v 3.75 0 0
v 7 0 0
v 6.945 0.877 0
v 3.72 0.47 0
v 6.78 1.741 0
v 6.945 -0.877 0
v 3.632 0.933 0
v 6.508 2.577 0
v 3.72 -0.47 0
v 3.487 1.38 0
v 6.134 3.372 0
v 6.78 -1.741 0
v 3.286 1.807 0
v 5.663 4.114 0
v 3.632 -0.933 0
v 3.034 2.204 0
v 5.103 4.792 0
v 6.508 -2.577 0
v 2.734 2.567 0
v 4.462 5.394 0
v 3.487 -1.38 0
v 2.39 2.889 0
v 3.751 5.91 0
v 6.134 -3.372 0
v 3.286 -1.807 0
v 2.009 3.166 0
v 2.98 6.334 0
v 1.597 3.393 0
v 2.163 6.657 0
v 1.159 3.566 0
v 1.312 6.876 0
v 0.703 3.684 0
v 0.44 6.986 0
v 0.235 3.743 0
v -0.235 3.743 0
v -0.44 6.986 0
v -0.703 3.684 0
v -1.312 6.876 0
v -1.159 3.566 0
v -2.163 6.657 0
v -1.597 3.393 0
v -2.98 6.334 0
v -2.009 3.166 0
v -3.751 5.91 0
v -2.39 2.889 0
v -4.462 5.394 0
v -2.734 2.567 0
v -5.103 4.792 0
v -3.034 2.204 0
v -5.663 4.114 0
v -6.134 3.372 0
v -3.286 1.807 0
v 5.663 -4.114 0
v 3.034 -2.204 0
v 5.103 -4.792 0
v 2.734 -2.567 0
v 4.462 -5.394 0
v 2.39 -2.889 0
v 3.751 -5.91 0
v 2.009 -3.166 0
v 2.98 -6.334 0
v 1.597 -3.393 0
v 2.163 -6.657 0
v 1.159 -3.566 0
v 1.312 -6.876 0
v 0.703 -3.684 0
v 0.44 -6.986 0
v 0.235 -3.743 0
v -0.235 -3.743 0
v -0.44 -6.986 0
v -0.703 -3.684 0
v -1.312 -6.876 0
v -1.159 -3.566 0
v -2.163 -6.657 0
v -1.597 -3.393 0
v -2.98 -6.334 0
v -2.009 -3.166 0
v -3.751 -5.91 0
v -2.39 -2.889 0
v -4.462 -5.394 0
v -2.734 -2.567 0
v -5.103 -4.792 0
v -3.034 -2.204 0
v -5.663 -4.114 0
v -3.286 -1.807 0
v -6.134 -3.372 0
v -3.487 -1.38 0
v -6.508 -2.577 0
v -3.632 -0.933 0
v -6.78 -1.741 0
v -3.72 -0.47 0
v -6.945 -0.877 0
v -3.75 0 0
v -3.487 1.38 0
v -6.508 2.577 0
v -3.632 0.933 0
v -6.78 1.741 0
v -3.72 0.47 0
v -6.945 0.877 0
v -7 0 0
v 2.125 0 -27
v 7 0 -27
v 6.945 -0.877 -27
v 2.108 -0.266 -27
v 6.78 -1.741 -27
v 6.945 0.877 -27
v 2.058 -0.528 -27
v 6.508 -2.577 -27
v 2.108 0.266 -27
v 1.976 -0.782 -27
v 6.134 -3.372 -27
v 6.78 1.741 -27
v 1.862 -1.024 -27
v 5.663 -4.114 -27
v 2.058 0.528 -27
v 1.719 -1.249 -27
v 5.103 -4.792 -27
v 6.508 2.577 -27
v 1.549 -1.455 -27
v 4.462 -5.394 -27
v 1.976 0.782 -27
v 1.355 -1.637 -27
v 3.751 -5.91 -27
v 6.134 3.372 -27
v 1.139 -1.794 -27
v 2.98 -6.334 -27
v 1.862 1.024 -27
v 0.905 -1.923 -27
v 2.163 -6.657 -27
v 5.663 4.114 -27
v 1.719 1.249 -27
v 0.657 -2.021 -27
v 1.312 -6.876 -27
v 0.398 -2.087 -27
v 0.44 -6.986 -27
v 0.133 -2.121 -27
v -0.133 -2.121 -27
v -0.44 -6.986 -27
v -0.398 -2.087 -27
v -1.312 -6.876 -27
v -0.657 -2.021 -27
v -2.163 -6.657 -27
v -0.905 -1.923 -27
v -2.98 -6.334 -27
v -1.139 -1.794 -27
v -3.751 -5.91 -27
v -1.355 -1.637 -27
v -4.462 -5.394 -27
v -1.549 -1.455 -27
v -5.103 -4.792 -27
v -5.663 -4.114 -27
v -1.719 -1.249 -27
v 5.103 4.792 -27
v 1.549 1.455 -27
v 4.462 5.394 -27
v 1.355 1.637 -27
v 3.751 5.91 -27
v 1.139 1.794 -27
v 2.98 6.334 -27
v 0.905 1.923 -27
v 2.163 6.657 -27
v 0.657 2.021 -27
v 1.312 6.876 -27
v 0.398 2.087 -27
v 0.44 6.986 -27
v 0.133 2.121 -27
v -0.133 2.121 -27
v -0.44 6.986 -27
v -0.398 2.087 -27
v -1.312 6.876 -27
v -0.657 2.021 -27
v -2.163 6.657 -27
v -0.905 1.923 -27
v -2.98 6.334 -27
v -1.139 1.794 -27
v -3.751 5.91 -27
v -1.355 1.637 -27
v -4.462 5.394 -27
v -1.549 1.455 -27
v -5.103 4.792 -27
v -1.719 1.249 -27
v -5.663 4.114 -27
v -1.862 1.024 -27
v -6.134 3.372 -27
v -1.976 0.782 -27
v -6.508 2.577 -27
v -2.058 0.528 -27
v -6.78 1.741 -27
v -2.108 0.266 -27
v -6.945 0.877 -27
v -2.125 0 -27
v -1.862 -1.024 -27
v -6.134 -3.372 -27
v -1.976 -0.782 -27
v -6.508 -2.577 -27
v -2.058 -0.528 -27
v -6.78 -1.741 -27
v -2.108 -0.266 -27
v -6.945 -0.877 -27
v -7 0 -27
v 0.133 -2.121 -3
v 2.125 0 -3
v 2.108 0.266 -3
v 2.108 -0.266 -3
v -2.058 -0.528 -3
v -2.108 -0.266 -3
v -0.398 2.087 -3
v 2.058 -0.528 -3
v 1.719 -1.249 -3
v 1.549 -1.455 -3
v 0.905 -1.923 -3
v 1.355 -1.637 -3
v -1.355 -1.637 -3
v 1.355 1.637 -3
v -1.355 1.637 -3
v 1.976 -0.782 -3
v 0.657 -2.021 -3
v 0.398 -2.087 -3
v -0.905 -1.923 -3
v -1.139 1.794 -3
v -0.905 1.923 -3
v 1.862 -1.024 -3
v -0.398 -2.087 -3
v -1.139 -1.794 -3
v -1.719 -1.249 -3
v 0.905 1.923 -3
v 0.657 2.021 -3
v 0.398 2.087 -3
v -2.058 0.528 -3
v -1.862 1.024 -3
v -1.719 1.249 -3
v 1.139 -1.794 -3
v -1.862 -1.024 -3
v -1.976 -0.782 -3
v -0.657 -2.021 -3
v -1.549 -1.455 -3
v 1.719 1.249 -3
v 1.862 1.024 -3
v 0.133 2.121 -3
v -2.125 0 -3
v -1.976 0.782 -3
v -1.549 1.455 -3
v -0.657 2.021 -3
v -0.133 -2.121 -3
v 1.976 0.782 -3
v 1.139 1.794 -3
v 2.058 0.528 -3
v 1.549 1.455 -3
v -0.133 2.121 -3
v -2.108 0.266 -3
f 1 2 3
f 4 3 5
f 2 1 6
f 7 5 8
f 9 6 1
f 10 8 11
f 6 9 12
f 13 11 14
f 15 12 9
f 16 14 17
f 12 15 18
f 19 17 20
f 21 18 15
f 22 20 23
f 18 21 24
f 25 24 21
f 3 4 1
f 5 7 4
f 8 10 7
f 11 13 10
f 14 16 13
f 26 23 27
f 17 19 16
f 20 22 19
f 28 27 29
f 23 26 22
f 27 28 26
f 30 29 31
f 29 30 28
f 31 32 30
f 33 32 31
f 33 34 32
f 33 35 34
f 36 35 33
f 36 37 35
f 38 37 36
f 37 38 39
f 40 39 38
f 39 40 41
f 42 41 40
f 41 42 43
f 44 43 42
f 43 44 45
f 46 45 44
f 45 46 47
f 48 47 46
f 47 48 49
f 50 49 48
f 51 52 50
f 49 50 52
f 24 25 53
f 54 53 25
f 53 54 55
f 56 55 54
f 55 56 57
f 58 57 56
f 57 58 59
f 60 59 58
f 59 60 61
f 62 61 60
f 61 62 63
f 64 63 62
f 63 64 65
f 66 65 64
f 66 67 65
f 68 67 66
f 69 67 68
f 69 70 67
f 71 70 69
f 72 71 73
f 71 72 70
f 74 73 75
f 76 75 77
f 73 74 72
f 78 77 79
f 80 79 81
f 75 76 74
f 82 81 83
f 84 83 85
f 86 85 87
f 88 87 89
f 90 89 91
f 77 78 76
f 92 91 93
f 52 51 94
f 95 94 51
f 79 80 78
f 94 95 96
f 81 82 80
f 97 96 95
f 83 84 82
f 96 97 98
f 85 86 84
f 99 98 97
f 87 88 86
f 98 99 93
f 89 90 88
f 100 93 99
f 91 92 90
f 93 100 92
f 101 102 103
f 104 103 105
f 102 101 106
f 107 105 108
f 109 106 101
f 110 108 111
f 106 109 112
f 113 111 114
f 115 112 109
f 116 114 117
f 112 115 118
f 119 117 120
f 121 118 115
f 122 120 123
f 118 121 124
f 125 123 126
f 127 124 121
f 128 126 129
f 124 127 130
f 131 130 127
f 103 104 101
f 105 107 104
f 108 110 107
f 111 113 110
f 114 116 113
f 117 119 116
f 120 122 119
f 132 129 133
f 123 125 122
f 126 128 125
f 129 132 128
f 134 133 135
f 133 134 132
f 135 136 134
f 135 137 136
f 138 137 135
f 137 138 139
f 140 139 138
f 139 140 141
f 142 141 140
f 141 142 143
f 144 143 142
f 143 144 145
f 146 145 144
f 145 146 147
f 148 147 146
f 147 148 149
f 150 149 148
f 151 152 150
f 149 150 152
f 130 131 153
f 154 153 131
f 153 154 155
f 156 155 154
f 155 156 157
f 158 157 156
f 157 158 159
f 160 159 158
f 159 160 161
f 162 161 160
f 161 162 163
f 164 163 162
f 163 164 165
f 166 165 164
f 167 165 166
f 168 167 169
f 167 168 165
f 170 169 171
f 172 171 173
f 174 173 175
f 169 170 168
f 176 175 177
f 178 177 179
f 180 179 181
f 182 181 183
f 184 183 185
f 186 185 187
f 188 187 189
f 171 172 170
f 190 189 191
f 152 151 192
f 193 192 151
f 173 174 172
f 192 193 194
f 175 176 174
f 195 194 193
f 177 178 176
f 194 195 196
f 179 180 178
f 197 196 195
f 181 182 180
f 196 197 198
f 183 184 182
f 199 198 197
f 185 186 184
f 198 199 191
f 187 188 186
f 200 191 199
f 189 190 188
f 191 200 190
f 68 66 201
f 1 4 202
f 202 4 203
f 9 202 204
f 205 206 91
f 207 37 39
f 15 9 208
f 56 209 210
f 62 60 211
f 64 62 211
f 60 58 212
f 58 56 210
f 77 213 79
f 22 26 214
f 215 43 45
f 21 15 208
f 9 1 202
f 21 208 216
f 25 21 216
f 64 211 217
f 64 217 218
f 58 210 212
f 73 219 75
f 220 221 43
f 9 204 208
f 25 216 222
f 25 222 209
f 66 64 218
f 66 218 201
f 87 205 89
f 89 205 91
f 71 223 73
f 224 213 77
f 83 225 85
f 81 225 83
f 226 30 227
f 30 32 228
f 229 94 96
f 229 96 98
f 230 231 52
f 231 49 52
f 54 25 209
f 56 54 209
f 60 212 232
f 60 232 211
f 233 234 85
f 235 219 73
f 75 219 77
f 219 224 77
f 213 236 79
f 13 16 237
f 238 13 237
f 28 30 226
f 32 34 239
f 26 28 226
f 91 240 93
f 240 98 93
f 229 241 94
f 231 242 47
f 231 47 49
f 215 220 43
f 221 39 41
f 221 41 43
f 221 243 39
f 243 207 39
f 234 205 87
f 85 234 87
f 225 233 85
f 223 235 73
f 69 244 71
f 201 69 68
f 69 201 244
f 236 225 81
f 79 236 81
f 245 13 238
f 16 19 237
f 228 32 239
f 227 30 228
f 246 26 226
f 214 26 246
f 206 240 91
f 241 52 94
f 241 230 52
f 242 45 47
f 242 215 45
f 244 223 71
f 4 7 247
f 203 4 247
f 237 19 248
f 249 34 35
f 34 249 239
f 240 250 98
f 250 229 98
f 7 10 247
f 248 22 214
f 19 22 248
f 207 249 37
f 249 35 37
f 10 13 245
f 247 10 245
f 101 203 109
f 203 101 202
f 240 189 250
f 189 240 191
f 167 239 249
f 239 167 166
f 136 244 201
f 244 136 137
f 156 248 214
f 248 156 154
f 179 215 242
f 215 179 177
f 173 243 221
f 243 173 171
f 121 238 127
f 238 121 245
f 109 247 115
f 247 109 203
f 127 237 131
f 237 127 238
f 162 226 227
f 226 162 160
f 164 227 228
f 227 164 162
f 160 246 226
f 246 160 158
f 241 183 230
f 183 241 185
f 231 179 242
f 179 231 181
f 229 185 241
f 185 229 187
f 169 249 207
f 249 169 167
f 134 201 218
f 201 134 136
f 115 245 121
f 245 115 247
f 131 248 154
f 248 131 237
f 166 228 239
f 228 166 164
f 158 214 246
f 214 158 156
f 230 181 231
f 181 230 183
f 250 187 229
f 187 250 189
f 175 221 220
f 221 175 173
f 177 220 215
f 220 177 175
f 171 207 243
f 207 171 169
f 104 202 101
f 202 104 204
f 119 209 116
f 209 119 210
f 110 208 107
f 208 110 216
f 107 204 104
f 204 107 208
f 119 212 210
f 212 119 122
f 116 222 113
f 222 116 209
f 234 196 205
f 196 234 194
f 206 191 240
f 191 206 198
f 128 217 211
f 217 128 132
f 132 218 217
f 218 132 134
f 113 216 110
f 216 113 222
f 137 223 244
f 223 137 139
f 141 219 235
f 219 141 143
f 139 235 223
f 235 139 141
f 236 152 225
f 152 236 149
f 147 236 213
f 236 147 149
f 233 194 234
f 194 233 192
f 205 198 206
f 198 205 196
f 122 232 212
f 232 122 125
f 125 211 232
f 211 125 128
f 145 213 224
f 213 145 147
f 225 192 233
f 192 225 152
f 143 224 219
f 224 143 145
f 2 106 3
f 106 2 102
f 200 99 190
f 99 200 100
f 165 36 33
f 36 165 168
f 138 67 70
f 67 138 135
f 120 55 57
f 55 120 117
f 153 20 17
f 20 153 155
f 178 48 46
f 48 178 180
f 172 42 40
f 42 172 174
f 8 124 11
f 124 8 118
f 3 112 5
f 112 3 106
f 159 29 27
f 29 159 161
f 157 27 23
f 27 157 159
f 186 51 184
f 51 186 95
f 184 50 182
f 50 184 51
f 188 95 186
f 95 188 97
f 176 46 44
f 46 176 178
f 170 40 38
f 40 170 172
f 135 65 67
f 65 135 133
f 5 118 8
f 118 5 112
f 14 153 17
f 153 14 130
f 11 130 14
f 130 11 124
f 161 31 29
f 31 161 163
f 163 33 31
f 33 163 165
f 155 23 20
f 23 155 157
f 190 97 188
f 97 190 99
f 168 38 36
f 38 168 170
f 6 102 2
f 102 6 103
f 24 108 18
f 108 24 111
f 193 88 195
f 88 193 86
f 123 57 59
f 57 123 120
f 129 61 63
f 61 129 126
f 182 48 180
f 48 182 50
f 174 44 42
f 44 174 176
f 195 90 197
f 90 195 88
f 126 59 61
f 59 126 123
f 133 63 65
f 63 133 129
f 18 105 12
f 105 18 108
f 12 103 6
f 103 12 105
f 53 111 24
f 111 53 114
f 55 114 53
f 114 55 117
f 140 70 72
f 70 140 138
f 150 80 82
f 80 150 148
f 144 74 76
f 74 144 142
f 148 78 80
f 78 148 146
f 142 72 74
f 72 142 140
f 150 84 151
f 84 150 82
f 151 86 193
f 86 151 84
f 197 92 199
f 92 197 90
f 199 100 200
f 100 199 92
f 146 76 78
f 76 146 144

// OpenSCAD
$fn = 50;


difference() {
	union() {
		translate(v = [0, 0, -27.0000000000]) {
			cylinder(h = 27, r = 7.0000000000);
		}
		cylinder(h = 0, r = 10.0000000000);
	}
	union() {
		translate(v = [0, 0, 0]) {
			rotate(a = [0, 0, 0]) {
				difference() {
					union() {
						#translate(v = [0, 0, -27.0000000000]) {
							cylinder(h = 27, r = 2.0000000000);
						}
						#translate(v = [0, 0, -3]) {
							cylinder(h = 3, r1 = 2.1250000000, r2 = 3.7500000000);
						}
						#translate(v = [0, 0, -27.0000000000]) {
							cylinder(h = 27, r = 2.1250000000);
						}
						#translate(v = [0, 0, -27.0000000000]) {
							cylinder(h = 27, r = 2.0000000000);
						}
					}
					union();
				}
			}
		}
	}
}
